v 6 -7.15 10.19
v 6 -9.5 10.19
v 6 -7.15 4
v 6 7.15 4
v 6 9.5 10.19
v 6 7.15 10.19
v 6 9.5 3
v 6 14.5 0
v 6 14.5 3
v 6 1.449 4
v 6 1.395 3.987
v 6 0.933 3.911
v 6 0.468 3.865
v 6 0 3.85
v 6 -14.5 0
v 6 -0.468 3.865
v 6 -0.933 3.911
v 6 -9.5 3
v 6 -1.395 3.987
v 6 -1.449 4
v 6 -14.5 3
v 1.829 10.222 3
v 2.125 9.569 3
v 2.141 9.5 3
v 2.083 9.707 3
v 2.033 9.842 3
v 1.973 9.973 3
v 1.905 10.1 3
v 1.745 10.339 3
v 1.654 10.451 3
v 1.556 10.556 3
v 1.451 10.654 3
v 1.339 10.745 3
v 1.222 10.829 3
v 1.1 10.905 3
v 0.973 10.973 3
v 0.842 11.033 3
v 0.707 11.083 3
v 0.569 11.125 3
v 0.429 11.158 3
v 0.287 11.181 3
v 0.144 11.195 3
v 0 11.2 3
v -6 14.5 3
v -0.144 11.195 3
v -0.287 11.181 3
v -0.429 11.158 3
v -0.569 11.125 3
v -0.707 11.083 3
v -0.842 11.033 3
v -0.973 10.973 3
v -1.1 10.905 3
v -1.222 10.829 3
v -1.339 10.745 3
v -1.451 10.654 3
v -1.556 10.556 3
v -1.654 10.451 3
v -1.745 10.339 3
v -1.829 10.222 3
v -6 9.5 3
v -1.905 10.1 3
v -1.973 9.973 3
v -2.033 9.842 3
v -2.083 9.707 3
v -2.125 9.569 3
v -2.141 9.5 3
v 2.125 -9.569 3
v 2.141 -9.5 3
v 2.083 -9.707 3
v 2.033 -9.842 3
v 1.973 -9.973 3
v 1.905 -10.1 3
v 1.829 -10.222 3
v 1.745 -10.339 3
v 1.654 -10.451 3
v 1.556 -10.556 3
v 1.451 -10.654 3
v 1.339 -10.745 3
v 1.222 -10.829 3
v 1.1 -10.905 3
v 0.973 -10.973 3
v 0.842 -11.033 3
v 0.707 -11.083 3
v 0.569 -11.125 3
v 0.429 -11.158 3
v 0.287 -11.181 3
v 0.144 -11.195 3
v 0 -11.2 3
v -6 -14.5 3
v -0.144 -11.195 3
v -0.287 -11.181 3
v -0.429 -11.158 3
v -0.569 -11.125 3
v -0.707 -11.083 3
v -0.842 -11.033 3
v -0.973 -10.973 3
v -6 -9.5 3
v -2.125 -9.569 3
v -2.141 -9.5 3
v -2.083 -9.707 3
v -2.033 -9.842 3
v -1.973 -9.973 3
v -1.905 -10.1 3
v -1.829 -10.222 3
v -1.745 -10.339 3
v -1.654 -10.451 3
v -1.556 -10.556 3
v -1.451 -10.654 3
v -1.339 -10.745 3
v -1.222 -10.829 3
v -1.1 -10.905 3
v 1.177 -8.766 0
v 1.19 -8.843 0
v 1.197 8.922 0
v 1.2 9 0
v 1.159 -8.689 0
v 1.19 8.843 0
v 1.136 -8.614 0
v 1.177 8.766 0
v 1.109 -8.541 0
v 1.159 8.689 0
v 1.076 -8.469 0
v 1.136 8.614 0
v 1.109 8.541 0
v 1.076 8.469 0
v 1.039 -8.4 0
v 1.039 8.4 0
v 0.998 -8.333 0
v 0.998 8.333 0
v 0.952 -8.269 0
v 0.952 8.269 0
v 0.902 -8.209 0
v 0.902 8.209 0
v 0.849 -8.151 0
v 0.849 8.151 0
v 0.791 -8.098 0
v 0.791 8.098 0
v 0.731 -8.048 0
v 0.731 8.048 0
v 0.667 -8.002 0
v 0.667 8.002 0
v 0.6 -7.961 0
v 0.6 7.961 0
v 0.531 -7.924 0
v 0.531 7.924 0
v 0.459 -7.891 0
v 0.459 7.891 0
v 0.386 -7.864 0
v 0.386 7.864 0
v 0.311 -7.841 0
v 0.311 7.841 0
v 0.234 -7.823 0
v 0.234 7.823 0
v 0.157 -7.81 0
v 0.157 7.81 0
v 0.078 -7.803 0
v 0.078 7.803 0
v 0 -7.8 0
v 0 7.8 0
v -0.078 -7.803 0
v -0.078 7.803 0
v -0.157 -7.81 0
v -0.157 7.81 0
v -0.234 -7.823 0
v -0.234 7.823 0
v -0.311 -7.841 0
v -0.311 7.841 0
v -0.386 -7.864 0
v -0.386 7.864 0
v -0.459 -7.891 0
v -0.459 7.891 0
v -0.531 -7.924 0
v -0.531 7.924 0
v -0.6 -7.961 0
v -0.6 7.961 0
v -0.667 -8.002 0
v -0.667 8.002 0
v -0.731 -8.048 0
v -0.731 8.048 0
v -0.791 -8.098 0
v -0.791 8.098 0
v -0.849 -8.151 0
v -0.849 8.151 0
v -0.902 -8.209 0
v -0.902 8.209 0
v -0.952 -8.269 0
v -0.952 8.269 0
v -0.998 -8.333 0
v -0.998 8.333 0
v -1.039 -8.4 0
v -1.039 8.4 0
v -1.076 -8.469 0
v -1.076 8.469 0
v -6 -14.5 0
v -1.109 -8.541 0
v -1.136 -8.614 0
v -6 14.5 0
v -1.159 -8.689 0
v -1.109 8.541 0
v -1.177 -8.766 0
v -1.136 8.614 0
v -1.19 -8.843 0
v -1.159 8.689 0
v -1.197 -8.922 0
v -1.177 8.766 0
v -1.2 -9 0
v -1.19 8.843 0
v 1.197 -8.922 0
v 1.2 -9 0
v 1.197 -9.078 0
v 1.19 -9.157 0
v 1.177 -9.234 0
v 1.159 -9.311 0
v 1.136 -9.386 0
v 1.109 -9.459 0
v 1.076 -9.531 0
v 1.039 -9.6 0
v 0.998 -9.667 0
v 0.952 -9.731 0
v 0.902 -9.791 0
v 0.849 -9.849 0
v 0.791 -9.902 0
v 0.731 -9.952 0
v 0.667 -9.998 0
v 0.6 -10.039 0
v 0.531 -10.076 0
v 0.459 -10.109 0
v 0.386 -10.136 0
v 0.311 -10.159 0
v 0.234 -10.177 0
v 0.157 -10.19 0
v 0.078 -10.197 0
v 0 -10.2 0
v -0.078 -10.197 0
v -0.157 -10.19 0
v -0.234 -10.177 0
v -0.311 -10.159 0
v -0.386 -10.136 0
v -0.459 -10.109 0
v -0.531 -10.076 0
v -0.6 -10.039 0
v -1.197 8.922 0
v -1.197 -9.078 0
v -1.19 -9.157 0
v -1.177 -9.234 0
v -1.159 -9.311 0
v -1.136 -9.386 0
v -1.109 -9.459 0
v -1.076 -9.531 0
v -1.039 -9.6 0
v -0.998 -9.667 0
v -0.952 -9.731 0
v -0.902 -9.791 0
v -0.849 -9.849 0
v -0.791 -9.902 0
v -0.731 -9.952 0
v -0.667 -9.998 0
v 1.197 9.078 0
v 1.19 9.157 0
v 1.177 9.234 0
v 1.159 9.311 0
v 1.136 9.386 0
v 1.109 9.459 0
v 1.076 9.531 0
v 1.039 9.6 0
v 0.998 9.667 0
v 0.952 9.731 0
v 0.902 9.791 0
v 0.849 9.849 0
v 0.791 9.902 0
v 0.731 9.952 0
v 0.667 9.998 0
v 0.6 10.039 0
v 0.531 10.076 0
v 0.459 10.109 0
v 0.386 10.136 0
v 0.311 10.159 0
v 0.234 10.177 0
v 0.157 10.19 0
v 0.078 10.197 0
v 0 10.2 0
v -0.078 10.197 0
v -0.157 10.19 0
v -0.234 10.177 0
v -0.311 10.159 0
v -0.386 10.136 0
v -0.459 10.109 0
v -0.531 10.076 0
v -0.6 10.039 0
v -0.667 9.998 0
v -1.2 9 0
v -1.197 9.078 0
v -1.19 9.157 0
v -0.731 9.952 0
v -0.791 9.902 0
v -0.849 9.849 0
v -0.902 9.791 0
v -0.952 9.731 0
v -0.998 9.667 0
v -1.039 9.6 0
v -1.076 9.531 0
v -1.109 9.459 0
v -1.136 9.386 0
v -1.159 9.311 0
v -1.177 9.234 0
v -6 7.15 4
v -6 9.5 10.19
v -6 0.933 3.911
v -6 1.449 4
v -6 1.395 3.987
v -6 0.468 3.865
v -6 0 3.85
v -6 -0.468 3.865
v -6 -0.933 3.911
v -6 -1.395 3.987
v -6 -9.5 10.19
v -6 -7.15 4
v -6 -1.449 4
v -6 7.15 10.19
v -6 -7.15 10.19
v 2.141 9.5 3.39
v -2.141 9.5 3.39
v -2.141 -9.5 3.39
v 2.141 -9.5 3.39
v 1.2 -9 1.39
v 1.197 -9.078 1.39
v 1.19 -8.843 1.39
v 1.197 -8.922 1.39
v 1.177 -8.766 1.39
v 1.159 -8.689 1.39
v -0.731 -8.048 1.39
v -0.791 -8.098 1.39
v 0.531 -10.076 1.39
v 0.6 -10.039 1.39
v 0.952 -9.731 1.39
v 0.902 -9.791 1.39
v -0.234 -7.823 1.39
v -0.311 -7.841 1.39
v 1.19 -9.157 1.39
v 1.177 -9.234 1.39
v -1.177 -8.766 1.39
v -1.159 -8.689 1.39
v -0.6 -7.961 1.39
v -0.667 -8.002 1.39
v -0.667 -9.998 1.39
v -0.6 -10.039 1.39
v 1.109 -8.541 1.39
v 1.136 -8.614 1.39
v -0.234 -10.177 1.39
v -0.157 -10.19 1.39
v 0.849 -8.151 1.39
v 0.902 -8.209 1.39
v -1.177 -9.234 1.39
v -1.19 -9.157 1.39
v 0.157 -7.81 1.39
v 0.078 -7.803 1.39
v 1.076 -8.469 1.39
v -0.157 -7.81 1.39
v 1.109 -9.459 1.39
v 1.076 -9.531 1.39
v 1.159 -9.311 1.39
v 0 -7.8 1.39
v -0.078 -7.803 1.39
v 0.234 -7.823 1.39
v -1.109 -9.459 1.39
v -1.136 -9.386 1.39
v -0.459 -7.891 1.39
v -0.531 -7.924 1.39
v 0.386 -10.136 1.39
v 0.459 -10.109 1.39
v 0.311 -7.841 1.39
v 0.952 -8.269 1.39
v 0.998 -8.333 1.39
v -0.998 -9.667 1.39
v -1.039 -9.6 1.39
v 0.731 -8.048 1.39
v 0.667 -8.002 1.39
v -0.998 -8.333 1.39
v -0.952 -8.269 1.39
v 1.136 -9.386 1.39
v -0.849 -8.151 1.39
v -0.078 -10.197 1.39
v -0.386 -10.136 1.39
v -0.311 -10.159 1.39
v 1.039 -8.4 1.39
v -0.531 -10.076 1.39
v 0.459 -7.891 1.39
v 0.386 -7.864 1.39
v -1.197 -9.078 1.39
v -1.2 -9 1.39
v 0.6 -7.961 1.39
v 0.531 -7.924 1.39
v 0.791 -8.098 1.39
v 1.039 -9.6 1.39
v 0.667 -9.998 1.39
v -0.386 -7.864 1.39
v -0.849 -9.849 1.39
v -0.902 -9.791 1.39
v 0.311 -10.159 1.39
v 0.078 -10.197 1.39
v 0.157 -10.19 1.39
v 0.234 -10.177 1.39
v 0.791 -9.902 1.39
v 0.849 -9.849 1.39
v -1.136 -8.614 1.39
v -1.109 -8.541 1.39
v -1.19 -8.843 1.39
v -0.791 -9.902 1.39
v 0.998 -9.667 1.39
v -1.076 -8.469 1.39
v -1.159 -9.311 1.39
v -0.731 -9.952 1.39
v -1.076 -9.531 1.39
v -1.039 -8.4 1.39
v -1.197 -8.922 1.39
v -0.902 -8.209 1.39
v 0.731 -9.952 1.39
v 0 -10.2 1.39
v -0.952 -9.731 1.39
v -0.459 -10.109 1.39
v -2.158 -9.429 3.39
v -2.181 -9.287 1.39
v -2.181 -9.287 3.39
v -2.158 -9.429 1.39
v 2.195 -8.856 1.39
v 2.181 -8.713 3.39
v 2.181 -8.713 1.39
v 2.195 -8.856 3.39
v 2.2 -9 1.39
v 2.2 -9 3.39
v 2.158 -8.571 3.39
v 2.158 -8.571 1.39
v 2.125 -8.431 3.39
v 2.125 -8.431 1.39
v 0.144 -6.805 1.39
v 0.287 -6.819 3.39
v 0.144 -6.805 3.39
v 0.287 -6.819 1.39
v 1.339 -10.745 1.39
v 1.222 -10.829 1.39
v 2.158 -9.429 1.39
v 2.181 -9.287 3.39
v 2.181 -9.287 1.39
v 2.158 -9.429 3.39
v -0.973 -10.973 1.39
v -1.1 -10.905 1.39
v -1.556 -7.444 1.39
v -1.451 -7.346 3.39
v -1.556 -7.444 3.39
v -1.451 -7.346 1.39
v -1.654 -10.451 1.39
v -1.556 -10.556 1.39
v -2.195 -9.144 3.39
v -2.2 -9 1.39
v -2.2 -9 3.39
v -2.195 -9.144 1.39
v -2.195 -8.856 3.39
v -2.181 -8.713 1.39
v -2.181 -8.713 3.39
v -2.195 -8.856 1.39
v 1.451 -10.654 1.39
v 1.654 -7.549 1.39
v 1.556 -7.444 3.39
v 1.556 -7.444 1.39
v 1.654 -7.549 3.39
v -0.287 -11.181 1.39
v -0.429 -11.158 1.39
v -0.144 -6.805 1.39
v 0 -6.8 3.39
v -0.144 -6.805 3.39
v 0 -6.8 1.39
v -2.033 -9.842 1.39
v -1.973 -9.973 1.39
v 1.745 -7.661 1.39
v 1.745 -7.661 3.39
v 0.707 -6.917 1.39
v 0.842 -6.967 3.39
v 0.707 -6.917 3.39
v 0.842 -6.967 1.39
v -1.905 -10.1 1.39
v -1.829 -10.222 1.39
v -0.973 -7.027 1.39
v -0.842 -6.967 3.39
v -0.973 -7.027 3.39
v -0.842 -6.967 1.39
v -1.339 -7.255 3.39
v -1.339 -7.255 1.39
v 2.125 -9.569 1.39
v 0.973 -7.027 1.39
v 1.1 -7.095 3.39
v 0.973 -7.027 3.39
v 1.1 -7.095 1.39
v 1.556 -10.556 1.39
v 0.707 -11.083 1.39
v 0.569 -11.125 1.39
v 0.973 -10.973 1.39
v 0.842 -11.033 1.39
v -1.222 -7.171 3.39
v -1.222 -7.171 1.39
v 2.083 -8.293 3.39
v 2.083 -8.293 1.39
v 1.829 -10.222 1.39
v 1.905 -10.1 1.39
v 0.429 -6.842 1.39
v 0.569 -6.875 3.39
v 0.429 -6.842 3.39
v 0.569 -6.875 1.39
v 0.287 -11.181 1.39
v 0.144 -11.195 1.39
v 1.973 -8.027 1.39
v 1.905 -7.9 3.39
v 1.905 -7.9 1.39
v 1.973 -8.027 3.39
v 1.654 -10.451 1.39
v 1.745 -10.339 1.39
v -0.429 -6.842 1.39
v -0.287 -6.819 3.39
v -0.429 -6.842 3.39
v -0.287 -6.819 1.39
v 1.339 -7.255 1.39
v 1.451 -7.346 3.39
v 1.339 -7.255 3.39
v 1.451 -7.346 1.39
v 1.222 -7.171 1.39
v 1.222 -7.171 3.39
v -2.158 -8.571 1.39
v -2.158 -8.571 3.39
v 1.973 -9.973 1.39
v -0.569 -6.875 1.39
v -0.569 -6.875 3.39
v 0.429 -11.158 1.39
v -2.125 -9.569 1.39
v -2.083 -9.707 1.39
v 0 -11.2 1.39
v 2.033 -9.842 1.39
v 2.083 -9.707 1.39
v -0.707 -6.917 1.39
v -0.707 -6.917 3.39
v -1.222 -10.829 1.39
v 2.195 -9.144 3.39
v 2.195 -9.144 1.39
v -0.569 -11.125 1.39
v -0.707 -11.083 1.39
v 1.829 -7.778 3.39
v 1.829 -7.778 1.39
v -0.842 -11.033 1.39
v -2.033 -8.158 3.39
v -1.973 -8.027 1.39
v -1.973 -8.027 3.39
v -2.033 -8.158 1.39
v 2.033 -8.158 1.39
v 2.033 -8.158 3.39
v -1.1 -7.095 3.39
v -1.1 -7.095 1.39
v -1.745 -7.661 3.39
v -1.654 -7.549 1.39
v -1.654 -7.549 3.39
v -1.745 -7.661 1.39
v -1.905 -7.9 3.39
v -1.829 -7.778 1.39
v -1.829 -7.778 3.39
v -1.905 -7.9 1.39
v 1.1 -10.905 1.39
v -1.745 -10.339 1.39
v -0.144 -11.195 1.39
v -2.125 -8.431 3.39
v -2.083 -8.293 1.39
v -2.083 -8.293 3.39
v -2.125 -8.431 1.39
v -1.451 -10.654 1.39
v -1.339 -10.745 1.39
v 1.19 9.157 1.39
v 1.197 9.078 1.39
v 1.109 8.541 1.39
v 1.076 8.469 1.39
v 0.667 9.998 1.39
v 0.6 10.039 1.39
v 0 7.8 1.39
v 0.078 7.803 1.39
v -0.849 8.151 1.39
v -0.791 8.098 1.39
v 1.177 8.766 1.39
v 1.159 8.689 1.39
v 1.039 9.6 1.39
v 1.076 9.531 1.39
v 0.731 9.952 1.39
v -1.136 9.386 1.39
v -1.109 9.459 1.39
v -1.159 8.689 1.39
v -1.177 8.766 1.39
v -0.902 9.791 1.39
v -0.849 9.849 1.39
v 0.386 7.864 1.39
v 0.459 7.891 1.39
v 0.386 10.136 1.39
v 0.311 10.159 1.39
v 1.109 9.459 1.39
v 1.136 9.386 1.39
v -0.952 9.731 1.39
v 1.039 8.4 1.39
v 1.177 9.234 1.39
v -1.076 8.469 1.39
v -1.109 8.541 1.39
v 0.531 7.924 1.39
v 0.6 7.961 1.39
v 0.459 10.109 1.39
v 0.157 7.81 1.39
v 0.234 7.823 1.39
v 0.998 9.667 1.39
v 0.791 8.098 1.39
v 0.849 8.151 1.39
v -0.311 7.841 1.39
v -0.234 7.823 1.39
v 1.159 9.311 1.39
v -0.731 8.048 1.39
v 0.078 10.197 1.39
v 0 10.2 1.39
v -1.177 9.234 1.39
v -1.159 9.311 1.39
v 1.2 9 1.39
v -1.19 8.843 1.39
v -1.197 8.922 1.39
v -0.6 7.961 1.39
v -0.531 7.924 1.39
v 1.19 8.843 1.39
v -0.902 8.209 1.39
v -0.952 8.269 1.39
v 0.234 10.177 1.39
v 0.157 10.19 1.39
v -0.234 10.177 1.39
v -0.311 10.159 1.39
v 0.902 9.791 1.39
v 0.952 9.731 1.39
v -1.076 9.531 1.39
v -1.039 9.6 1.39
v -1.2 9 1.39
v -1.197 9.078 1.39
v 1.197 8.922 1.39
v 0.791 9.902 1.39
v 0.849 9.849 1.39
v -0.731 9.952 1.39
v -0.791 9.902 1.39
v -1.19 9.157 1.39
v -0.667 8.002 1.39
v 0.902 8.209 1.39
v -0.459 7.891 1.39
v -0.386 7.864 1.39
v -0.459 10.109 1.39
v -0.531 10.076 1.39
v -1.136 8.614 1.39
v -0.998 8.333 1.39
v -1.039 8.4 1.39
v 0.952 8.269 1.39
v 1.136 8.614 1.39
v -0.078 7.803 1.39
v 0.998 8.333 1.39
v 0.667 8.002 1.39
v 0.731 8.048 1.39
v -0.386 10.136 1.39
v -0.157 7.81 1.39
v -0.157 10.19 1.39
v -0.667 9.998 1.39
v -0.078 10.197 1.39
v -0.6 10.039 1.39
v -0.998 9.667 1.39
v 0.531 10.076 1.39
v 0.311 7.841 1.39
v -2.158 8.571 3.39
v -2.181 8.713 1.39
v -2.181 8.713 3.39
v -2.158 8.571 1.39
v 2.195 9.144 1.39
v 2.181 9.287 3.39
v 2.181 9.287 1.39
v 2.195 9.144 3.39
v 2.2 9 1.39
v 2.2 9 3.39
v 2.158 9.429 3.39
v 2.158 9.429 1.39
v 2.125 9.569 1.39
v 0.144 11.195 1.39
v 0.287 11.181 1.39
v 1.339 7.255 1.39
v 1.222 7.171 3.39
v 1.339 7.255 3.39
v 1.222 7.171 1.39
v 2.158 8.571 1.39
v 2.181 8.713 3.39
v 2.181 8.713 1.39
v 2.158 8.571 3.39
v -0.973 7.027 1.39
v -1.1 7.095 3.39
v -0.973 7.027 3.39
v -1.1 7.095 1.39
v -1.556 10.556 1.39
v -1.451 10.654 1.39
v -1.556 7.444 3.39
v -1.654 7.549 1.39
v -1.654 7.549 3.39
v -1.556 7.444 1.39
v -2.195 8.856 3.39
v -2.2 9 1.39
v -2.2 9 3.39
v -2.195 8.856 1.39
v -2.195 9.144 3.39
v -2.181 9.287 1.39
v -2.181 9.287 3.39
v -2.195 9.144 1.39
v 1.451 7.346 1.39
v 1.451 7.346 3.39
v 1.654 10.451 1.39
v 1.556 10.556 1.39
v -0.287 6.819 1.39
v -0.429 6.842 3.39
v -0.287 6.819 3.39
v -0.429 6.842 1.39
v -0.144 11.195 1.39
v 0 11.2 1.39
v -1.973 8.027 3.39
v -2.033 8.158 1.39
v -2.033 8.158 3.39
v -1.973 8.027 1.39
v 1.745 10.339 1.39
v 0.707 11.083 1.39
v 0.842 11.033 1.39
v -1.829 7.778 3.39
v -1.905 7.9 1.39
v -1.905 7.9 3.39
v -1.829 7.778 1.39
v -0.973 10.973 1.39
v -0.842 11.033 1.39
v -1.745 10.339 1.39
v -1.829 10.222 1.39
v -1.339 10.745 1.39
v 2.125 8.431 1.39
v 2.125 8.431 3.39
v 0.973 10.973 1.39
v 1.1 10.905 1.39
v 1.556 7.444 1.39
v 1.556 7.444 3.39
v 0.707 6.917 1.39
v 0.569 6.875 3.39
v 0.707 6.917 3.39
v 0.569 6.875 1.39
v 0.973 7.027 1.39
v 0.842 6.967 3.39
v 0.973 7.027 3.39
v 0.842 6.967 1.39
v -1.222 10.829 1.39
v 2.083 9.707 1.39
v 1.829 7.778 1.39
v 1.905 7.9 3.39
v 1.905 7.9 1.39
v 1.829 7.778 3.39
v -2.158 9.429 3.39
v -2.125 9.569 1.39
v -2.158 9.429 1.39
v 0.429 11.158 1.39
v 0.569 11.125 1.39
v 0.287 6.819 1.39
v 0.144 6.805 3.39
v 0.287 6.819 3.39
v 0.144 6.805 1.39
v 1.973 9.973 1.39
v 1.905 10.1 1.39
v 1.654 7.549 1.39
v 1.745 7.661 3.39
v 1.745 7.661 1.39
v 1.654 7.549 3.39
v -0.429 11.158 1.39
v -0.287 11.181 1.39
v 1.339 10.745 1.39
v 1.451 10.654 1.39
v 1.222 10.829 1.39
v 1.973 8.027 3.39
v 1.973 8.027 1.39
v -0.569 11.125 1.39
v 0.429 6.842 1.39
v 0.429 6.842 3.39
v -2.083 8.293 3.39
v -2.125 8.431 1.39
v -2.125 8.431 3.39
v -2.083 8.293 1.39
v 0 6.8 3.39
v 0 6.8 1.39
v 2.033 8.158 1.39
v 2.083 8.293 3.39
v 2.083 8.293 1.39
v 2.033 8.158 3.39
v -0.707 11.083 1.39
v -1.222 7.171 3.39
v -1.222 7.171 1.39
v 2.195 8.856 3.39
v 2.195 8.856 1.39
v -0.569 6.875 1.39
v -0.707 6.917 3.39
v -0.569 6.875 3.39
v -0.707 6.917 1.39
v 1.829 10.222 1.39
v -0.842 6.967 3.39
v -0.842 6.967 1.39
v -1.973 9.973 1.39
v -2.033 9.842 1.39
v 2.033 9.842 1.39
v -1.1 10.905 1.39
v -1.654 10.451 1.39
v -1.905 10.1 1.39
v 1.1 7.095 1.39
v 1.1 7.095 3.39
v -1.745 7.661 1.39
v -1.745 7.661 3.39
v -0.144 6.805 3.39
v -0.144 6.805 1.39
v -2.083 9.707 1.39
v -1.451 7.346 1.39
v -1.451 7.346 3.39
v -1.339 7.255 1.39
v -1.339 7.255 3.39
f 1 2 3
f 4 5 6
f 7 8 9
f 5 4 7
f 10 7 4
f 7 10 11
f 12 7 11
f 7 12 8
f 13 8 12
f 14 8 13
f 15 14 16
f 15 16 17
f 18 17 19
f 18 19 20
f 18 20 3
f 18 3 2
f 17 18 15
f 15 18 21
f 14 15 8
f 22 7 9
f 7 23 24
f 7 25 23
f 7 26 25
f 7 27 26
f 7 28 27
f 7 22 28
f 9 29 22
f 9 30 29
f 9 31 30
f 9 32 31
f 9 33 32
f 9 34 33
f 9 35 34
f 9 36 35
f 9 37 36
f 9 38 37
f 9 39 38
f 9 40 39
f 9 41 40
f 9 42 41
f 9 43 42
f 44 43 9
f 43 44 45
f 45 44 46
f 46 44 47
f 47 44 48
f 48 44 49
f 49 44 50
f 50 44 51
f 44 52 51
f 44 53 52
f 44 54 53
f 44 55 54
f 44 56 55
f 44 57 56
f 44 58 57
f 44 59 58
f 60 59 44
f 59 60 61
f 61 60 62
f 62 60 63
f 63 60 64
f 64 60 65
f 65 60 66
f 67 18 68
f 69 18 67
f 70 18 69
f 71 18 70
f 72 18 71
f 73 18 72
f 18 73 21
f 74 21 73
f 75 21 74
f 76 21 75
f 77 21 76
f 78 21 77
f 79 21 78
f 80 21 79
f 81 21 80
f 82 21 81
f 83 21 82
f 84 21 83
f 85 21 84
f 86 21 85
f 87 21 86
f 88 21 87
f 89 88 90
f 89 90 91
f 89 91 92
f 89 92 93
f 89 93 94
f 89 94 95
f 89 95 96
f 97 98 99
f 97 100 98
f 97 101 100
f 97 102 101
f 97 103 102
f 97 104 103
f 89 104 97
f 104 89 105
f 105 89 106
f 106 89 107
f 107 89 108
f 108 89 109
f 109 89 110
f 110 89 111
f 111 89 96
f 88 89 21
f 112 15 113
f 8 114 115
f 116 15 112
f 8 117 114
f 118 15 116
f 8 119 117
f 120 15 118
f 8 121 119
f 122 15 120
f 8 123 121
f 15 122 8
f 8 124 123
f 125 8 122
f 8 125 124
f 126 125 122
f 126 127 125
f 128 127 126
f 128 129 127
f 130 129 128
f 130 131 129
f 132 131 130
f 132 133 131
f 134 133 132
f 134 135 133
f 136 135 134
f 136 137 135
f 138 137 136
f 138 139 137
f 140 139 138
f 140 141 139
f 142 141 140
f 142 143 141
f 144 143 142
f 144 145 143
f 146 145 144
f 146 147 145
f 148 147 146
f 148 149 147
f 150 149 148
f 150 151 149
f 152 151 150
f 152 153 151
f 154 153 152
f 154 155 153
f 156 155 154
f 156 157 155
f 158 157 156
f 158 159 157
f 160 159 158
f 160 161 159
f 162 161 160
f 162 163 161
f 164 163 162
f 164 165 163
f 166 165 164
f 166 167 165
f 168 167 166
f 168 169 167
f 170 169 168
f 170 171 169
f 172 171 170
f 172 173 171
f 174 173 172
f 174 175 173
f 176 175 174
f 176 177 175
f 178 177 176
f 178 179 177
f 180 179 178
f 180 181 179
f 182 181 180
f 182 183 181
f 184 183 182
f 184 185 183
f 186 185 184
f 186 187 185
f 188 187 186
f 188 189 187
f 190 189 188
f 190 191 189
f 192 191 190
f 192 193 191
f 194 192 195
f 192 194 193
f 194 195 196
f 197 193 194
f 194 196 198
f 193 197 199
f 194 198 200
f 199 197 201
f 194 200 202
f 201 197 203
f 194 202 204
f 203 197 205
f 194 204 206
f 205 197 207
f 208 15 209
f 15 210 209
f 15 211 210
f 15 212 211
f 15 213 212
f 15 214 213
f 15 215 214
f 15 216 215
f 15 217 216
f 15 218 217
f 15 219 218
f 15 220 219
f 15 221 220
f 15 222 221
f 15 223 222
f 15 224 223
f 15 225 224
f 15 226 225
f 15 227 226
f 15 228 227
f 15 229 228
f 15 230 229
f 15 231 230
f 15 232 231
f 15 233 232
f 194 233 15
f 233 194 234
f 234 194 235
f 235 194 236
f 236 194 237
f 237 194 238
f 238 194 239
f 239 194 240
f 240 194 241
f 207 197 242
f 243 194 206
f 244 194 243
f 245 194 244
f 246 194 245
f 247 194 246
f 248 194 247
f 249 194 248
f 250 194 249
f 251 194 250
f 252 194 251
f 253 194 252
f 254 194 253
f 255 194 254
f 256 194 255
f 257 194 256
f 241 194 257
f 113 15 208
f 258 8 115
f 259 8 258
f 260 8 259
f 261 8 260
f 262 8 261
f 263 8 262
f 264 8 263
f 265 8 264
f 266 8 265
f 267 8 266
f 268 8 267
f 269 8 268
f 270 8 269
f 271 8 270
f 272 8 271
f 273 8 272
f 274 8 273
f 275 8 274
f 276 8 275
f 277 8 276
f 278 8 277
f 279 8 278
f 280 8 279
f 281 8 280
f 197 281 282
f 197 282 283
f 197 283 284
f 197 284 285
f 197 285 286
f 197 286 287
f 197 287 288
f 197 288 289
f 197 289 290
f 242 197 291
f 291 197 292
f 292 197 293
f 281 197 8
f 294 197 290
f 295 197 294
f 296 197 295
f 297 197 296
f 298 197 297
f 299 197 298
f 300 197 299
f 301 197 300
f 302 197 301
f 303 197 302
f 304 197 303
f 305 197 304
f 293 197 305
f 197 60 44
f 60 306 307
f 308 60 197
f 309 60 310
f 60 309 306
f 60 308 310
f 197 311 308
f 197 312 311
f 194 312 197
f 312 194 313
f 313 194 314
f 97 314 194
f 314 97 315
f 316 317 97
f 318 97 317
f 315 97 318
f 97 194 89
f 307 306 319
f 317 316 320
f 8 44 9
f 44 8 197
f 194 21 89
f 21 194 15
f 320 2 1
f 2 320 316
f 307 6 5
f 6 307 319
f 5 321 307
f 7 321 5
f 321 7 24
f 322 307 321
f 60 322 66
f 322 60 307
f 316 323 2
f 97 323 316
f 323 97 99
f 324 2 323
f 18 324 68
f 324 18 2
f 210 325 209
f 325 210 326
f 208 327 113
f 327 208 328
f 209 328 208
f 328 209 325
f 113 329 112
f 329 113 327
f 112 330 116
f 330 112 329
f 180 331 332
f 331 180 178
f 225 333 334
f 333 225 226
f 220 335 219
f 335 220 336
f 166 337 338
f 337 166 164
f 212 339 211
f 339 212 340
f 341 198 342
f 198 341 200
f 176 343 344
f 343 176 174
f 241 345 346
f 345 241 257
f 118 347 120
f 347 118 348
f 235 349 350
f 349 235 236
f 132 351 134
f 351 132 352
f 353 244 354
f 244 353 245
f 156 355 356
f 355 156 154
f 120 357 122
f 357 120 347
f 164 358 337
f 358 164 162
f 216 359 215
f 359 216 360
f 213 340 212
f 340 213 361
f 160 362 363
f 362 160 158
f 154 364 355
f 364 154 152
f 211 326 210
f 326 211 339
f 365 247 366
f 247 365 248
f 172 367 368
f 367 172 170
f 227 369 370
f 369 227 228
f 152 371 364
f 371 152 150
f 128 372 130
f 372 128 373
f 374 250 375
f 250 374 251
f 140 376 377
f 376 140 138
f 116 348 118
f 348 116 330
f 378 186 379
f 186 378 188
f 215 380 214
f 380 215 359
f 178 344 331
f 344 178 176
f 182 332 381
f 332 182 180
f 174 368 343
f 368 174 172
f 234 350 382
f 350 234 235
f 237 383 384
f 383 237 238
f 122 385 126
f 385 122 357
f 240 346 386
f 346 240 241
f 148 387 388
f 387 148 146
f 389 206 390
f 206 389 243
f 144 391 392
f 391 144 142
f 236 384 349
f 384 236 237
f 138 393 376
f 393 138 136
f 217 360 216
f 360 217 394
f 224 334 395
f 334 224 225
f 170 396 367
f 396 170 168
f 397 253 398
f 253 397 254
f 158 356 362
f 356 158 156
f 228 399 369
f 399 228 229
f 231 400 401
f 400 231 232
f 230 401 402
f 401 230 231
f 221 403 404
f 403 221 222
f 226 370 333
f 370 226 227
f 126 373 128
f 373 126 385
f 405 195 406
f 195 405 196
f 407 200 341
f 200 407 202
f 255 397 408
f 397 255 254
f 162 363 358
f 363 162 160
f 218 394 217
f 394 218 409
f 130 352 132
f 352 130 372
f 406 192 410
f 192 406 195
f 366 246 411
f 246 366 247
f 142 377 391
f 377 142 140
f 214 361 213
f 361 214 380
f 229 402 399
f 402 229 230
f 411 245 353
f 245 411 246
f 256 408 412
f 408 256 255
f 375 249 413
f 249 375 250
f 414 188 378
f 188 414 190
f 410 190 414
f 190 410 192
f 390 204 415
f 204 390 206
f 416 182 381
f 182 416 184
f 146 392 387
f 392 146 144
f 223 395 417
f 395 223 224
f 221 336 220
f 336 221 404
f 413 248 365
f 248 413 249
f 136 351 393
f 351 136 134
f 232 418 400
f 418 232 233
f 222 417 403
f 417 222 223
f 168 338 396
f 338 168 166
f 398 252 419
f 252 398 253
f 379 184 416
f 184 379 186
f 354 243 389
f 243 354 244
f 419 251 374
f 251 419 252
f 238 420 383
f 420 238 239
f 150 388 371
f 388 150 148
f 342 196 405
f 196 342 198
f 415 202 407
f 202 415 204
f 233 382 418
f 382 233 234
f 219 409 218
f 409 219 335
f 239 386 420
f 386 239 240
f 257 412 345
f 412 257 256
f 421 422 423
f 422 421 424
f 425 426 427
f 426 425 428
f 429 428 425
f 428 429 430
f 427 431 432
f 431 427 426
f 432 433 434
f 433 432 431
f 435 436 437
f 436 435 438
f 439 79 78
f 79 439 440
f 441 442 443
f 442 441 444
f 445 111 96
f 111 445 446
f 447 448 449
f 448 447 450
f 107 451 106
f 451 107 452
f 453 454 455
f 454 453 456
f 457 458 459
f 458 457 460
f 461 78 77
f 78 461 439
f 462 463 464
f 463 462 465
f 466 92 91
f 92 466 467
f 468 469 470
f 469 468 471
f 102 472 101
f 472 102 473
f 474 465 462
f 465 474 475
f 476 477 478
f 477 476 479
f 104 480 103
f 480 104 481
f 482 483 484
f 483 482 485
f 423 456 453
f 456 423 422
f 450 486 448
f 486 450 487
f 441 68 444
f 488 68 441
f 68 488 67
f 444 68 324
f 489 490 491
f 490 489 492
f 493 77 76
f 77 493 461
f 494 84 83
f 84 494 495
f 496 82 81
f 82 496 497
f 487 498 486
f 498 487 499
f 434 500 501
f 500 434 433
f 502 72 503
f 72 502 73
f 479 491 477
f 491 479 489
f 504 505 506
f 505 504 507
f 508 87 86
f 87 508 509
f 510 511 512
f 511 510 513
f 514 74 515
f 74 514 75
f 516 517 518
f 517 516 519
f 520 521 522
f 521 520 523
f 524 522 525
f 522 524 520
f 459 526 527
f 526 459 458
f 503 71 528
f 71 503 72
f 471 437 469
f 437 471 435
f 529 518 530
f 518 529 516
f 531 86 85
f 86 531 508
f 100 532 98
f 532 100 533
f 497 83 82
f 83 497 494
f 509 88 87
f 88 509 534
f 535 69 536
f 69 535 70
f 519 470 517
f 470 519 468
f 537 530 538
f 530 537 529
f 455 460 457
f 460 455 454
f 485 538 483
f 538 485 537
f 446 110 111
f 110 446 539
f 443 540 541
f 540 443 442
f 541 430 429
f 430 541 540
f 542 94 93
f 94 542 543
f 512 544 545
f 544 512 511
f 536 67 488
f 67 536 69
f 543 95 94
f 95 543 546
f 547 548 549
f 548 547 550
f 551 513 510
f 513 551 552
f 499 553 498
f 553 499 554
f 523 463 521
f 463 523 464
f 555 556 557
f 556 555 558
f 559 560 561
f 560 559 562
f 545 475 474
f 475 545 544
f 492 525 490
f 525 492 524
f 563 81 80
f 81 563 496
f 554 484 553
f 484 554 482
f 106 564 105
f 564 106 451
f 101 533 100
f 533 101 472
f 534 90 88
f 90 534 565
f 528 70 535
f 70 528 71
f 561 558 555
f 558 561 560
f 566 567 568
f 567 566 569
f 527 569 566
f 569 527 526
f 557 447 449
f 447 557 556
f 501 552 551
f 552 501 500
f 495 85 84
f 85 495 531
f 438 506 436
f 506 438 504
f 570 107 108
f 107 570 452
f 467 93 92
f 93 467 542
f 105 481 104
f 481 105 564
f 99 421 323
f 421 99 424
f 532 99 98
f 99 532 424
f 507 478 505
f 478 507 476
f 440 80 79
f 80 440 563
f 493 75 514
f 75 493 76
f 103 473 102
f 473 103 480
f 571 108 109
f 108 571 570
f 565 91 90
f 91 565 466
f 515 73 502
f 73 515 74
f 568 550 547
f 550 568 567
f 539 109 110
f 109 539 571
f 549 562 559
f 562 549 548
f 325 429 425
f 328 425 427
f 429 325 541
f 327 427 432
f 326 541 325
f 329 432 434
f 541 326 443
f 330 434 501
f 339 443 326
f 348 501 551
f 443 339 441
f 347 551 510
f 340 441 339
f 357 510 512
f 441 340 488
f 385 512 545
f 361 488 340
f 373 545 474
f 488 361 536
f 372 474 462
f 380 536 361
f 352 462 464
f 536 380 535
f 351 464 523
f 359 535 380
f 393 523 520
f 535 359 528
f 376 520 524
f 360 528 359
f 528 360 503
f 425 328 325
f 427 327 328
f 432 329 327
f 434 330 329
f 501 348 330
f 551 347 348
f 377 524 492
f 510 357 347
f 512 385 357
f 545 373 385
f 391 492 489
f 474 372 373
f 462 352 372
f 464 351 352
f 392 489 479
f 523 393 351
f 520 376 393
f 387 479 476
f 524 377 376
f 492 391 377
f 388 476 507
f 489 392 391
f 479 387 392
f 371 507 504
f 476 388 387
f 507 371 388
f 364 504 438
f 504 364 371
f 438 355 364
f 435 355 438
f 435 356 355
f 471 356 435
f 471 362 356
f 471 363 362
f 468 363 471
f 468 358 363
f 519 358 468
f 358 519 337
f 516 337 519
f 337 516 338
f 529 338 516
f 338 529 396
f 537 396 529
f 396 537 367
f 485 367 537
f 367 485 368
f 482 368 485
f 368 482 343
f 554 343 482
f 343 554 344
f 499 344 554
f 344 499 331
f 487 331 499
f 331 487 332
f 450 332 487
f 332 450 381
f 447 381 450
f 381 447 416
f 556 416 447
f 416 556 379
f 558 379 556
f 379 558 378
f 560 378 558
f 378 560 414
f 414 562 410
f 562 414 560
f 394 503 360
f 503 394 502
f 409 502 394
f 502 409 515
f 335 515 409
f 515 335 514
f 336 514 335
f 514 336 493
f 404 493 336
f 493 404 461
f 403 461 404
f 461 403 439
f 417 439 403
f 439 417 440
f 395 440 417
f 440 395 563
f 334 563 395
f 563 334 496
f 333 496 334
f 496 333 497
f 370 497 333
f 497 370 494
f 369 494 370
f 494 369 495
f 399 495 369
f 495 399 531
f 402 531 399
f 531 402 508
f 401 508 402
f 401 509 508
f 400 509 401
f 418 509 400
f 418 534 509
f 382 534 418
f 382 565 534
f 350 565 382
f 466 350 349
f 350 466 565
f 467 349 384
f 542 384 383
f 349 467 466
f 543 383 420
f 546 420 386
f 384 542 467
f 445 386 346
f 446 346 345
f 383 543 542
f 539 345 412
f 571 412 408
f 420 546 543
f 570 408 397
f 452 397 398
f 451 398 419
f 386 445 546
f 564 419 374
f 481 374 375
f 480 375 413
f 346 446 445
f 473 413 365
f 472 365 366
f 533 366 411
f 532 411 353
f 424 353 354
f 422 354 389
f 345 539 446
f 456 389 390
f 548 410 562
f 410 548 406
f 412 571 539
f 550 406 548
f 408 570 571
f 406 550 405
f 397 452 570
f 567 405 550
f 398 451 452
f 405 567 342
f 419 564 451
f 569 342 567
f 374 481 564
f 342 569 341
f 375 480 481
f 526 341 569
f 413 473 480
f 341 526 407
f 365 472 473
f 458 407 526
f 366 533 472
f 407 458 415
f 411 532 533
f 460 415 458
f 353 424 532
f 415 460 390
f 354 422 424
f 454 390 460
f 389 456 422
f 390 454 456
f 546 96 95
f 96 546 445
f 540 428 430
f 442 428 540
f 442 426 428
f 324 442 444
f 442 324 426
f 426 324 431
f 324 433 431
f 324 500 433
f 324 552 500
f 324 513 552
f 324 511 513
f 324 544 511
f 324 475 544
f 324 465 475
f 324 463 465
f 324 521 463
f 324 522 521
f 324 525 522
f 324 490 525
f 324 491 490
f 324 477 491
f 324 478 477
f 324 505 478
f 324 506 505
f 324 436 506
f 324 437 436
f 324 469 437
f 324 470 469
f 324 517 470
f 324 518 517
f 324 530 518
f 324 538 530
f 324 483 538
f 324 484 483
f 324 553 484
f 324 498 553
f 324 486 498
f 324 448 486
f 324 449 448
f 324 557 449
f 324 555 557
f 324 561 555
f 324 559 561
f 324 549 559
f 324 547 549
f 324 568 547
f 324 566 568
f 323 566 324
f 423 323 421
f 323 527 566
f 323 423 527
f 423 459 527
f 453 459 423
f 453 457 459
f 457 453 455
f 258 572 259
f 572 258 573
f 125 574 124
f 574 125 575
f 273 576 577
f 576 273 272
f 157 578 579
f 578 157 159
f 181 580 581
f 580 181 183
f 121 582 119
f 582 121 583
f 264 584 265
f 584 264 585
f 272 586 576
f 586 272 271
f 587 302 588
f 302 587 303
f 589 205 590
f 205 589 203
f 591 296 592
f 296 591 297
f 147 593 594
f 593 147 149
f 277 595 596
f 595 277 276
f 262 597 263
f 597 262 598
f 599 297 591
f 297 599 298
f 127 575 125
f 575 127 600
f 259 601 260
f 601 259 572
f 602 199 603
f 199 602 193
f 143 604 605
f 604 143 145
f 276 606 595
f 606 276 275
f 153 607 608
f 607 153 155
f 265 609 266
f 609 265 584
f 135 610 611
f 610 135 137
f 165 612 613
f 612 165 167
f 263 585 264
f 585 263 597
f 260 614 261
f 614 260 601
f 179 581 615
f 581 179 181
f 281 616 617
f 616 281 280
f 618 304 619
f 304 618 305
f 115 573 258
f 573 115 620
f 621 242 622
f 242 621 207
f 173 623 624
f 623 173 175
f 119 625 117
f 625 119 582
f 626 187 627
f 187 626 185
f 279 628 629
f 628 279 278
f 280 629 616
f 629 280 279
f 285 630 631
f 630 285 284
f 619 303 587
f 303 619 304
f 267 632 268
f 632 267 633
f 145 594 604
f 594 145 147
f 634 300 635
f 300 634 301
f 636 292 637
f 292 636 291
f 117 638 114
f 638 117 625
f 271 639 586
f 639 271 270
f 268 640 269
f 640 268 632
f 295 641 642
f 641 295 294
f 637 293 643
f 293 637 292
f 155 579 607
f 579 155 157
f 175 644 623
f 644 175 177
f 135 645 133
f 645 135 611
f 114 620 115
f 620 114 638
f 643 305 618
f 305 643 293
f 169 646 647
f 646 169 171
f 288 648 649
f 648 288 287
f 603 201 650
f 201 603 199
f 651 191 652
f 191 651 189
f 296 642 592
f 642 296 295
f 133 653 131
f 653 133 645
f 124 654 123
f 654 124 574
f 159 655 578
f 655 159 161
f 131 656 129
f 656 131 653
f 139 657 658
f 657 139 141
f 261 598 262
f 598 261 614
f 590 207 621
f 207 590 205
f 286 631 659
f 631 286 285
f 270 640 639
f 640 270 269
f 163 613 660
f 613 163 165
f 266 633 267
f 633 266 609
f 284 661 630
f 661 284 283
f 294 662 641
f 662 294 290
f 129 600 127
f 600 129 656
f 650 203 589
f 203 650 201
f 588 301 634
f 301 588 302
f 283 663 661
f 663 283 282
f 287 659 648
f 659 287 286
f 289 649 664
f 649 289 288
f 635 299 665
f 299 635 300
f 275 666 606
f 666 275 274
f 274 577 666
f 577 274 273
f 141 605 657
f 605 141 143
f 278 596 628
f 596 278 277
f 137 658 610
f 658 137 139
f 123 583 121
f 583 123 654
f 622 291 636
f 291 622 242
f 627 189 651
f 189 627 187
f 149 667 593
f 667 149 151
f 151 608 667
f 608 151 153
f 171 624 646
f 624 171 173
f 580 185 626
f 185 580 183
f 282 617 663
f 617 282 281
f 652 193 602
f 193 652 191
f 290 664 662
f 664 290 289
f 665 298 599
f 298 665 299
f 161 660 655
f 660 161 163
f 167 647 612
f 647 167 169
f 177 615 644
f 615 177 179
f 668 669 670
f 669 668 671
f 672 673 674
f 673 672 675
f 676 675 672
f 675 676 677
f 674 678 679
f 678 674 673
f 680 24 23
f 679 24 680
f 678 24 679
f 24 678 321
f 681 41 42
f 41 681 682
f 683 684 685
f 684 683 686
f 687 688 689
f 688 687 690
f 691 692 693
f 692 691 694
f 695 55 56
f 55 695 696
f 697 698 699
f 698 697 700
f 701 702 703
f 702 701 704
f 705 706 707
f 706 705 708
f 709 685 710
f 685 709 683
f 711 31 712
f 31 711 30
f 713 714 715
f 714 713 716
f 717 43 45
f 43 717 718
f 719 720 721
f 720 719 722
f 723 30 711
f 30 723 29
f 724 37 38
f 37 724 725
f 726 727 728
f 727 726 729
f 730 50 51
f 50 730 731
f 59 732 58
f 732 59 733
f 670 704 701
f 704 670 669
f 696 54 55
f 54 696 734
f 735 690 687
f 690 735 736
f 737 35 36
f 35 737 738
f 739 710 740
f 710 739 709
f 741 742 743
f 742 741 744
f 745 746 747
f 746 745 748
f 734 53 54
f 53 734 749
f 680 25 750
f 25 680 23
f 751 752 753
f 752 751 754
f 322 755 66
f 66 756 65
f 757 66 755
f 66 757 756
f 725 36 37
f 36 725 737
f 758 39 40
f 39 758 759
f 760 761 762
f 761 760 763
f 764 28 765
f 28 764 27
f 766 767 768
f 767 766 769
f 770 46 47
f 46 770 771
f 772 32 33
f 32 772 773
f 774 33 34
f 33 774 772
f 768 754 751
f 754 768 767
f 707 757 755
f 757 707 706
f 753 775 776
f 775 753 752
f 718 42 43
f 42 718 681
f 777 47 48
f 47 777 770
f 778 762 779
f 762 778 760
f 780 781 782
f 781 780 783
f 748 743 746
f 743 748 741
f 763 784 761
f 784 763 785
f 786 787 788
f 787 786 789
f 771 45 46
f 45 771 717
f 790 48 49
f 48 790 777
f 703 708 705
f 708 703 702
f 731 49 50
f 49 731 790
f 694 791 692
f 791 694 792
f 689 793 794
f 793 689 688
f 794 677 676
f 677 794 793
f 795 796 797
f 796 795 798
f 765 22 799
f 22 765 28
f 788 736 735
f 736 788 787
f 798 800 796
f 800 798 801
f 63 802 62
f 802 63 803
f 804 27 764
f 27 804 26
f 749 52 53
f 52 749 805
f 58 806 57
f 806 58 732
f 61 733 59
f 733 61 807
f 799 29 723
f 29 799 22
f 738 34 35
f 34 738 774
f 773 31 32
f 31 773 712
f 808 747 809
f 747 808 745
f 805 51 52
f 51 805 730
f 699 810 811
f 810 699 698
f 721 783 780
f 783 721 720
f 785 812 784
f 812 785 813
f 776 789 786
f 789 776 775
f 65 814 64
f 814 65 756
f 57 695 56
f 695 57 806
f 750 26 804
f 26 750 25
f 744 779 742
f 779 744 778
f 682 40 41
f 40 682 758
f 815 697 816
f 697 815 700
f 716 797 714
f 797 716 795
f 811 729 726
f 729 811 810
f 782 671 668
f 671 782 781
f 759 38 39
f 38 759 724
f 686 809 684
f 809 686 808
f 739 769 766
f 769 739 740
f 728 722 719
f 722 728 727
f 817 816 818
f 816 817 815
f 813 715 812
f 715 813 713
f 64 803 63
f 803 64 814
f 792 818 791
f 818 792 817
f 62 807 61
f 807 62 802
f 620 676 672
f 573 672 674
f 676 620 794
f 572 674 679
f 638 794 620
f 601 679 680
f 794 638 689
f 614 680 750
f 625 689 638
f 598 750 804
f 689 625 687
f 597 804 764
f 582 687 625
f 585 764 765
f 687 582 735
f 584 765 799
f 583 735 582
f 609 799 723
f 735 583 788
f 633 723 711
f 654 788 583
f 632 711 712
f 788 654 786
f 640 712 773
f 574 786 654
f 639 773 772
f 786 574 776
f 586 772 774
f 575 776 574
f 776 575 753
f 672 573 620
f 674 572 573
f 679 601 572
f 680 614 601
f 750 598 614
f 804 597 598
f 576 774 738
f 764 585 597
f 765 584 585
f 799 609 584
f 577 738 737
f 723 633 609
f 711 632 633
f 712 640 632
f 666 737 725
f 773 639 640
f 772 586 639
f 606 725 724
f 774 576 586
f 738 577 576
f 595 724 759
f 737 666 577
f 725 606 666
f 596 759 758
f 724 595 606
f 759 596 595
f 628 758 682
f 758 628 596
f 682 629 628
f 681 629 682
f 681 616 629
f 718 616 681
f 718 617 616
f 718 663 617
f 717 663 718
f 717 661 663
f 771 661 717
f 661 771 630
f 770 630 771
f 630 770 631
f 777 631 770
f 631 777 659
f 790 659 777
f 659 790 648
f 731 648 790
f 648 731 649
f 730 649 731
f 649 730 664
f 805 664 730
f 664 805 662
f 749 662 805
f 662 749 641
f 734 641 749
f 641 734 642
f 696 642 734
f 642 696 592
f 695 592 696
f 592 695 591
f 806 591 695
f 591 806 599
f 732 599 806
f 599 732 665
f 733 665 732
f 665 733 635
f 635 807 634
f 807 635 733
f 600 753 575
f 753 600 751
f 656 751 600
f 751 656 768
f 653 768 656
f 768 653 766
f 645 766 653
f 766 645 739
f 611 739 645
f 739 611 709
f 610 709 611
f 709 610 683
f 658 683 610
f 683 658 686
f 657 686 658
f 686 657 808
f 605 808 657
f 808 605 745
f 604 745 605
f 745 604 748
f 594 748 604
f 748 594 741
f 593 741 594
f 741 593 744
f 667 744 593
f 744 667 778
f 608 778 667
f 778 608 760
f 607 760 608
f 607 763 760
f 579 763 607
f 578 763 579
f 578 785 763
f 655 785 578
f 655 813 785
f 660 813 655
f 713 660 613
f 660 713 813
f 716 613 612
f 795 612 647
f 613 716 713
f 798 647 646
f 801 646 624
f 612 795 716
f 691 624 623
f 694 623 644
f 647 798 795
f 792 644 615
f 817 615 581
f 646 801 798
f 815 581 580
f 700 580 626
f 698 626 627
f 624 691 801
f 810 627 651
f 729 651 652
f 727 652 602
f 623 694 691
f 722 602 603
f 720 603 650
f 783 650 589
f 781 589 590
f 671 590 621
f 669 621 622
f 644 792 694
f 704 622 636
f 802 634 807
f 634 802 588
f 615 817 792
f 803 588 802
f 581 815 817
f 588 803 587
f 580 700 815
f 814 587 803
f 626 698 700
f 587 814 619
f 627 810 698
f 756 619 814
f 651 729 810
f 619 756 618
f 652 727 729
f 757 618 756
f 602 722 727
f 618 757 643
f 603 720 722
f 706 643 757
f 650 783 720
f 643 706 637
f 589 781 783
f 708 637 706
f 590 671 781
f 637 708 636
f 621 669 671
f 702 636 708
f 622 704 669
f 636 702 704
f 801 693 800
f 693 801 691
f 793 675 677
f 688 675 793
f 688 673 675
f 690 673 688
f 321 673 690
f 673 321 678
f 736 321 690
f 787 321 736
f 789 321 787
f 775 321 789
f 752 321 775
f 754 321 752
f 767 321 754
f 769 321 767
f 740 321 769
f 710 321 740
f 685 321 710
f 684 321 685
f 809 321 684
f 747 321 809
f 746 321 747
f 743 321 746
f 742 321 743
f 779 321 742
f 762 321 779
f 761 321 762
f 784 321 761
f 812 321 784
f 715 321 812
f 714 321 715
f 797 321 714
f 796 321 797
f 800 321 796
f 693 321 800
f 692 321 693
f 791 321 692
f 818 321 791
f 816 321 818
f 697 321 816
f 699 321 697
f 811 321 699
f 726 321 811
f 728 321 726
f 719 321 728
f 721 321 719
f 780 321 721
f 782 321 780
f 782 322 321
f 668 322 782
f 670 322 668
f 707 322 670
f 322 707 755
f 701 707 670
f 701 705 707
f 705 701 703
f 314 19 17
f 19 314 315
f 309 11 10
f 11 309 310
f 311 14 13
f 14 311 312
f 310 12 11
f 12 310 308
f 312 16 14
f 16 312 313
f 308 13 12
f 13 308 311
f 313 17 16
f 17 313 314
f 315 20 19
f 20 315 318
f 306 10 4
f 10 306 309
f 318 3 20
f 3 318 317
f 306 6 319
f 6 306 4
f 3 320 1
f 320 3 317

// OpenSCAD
// file: rocky_lib.scad
// =====================================================================
// Rocky - reusable geometry helpers
// =====================================================================
include <rocky_params.scad>

// ---- primitives ------------------------------------------------------

// Cylinder with a rounded (filleted) top edge.
module round_top_cyl(d, h, r) {
    hull() {
        cylinder(d = d, h = h - r);
        translate([0, 0, h - r]) rotate_extrude()
            translate([d/2 - r, 0]) circle(r = r);
        translate([0, 0, h - r]) cylinder(d = d - 2*r, h = r);
    }
}

// A 90-degree V ball race, cut into a flat face lying at z = 0.
//   dir = -1  groove sinks below the face  (use on an upward-facing race)
//   dir = +1  groove rises above the face  (use on a downward-facing race)
// Either way the flanks sit at 45 degrees, so it prints without support.
module race_groove(pitch_d = race_d, depth = race_groove_d, dir = -1) {
    rotate_extrude($fn = 200)
        polygon([[pitch_d/2 - depth, 0],
                 [pitch_d/2 + depth, 0],
                 [pitch_d/2,         dir * depth]]);
}

// The balls themselves, for assembly renders / interference checking.
module race_balls(pitch_d = race_d, n = ball_count, d = ball_d) {
    polar(n, pitch_d/2) sphere(d = d, $fn = 24);
}

// Countersunk / counterbored clearance hole for an M3 cap screw,
// drilled downward from z=0.
module m3_cbore(depth = 20, head_up = true) {
    translate([0, 0, -depth]) cylinder(d = m3_free, h = depth + eps);
    if (head_up) cylinder(d = m3_head, h = m3_head_h + eps);
}

// Blind pilot bore for a brass heat-set insert, opening upward from z=0.
module heatset(d = m3_insert_d, h = m3_insert_h) {
    cylinder(d = d, h = h);
    // lead-in chamfer so the insert starts straight
    translate([0, 0, -eps]) cylinder(d1 = d + 1.0, d2 = d, h = 0.8);
}

// A boss with a heat-set insert in the top.
module insert_boss(h, od = 8, d = m3_insert_d, ih = m3_insert_h) {
    difference() {
        cylinder(d = od, h = h);
        translate([0, 0, h - ih]) heatset(d, ih + eps);
    }
}

// ---- patterns --------------------------------------------------------

// Polar array about the Y axis, for anything arranged around Rocky's
// face (the face lies in the XZ plane, so Z-axis polar is wrong there).
module polar_y(n, r = 0, start = 0) {
    for (i = [0 : n - 1])
        rotate([0, start + i * 360 / n, 0]) translate([r, 0, 0]) children();
}

module polar(n, r = 0, start = 0) {
    for (i = [0 : n - 1])
        rotate([0, 0, start + i * 360 / n]) translate([r, 0, 0]) children();
}

// Vertical louvre slots cut through a cylindrical wall, as radial capsules.
// The cut starts just inside the wall's inner face and runs outward, so it
// pierces the wall without chewing into bosses standing behind it.
module vent_ring(d, z0, z1, count, w = vent_w, ang_span = 360, ang_start = 0,
                 t = wall) {
    r0 = d/2 - t - 0.6;   // stays inside the wall, clear of bosses behind it
    len = t + 4;
    for (i = [0 : count - 1])
        rotate([0, 0, ang_start + i * ang_span / count])
            hull() {
                translate([r0, 0, z0 + w/2]) rotate([0, 90, 0])
                    cylinder(d = w, h = len, $fn = 20);
                translate([r0, 0, z1 - w/2]) rotate([0, 90, 0])
                    cylinder(d = w, h = len, $fn = 20);
            }
}

// Radial grille of round holes, for the speaker.
module speaker_grille(d_open, t) {
    hole  = 2.6;
    pitch = 4.4;
    n = floor(d_open / pitch / 2);
    translate([0, 0, -eps]) cylinder(d = hole, h = t + 2*eps);
    for (ring = [1 : n]) {
        r = ring * pitch;
        cnt = max(6, floor(2 * 3.14159 * r / pitch));
        for (i = [0 : cnt - 1])
            rotate([0, 0, i * 360 / cnt]) translate([r, 0, -eps])
                if (r + hole/2 < d_open/2) cylinder(d = hole, h = t + 2*eps);
    }
}

// ---- component negatives --------------------------------------------

// Negative volume for a standard-size servo dropped in from above.
// Origin sits at the OUTPUT SHAFT AXIS, on the underside of the body.
// Set `ears` to also cut the mounting-ear pocket.
module servo_pocket(ears = true, lead_in = 30) {
    dx = sv_shaft_off;             // shaft is offset from the body centre
    // body, plus a lead-in column above it so the servo can drop in
    translate([-dx, 0, (sv_body_h + lead_in)/2 - eps])
        cube([sv_body_l + slop, sv_body_w + slop, sv_body_h + lead_in], center = true);
    if (ears)
        translate([-dx, 0, sv_flange_z + sv_flange_t/2])
            cube([sv_flange_l + slop, sv_body_w + slop, sv_flange_t + slop], center = true);
    // cable exit
    translate([-dx - sv_body_l/2 - 4, 0, sv_body_h * 0.45])
        cube([10, 8, 10], center = true);
}

// The two M2.5 screw holes in each servo mounting ear.
module servo_ear_holes(h = 10) {
    dx = sv_shaft_off;
    translate([-dx, 0, 0])
        for (x = [-sv_hole_dx/2, sv_hole_dx/2], y = [-sv_hole_dy/2, sv_hole_dy/2])
            translate([x, y, -h/2]) cylinder(d = sv_hole_d, h = h);
}

// Clearance for the servo output boss + a round horn recessed into a part.
module servo_horn_pocket(depth = sv_horn_t + 0.4) {
    cylinder(d = sv_horn_d + slop, h = depth);
    translate([0, 0, -sv_boss_h]) cylinder(d = sv_shaft_d + 2.5, h = sv_boss_h + eps);
    // four screw holes to bolt the horn to the driven part
    polar(4, 8) translate([0, 0, -8]) cylinder(d = 2.2, h = 20);
}

// Raspberry Pi 5 mounting hole pattern, centred on the board outline.
module pi_holes(h = 12, d = m25_insert_d) {
    for (x = [-pi_hole_dx/2, pi_hole_dx/2], y = [-pi_hole_dy/2, pi_hole_dy/2])
        translate([x, y, 0]) cylinder(d = d, h = h);
}

// Camera Module 3 hole pattern.
module cam_holes(h = 10, d = m2_insert_d) {
    for (x = [-cam_hole_dx/2, cam_hole_dx/2], y = [-cam_hole_dy/2, cam_hole_dy/2])
        translate([x, y, 0]) cylinder(d = d, h = h);
}

// Display carrier PCB hole pattern.
module disp_holes(h = 12, d = m25_insert_d) {
    for (x = [-disp_hole_dx/2, disp_hole_dx/2], y = [-disp_hole_dy/2, disp_hole_dy/2])
        translate([x, y, 0]) cylinder(d = d, h = h);
}
// main file
// =====================================================================
// Rocky | PART 08 | mic_mount
// Saddle clamp for the microphone module inside the sensor brow.
// Change mic_body_d to match whatever mic you actually fit.
// PRINT: flat back down. Two M2 screws into the pod's inserts.
// =====================================================================
include <rocky_params.scad>
use     <rocky_lib.scad>

mic_body_d = usb_mic_d;     // 14mm default
plate_t    = 3.0;
hole_pitch = 18.0;          // matches the inserts in head_back's pod
saddle_h   = mic_body_d/2 + 3;

difference() {
    union() {
        translate([0, 0, plate_t/2]) cube([12, hole_pitch + 11, plate_t], center = true);
        translate([0, 0, plate_t - eps]) hull() {
            cube([12, mic_body_d + 5, 0.4], center = true);
            translate([0, 0, saddle_h - 3])
                cube([12, mic_body_d + 5, 0.4], center = true);
        }
    }
    // the mic itself, with a flat-bottomed slot so it prints support-free
    translate([0, 0, plate_t + mic_body_d/2 + 1.0])
        rotate([0, 90, 0]) cylinder(d = mic_body_d + slop, h = 20, center = true);
    translate([0, 0, plate_t + mic_body_d/2 + 1.0])
        cube([20, mic_body_d + slop, mic_body_d], center = true);
    // fixings
    for (y = [-hole_pitch/2, hole_pitch/2]) translate([0, y, -eps]) {
        cylinder(d = m2_free, h = plate_t + 2*eps);
        translate([0, 0, plate_t - 1.6]) cylinder(d = 4.4, h = 2);
    }
}
